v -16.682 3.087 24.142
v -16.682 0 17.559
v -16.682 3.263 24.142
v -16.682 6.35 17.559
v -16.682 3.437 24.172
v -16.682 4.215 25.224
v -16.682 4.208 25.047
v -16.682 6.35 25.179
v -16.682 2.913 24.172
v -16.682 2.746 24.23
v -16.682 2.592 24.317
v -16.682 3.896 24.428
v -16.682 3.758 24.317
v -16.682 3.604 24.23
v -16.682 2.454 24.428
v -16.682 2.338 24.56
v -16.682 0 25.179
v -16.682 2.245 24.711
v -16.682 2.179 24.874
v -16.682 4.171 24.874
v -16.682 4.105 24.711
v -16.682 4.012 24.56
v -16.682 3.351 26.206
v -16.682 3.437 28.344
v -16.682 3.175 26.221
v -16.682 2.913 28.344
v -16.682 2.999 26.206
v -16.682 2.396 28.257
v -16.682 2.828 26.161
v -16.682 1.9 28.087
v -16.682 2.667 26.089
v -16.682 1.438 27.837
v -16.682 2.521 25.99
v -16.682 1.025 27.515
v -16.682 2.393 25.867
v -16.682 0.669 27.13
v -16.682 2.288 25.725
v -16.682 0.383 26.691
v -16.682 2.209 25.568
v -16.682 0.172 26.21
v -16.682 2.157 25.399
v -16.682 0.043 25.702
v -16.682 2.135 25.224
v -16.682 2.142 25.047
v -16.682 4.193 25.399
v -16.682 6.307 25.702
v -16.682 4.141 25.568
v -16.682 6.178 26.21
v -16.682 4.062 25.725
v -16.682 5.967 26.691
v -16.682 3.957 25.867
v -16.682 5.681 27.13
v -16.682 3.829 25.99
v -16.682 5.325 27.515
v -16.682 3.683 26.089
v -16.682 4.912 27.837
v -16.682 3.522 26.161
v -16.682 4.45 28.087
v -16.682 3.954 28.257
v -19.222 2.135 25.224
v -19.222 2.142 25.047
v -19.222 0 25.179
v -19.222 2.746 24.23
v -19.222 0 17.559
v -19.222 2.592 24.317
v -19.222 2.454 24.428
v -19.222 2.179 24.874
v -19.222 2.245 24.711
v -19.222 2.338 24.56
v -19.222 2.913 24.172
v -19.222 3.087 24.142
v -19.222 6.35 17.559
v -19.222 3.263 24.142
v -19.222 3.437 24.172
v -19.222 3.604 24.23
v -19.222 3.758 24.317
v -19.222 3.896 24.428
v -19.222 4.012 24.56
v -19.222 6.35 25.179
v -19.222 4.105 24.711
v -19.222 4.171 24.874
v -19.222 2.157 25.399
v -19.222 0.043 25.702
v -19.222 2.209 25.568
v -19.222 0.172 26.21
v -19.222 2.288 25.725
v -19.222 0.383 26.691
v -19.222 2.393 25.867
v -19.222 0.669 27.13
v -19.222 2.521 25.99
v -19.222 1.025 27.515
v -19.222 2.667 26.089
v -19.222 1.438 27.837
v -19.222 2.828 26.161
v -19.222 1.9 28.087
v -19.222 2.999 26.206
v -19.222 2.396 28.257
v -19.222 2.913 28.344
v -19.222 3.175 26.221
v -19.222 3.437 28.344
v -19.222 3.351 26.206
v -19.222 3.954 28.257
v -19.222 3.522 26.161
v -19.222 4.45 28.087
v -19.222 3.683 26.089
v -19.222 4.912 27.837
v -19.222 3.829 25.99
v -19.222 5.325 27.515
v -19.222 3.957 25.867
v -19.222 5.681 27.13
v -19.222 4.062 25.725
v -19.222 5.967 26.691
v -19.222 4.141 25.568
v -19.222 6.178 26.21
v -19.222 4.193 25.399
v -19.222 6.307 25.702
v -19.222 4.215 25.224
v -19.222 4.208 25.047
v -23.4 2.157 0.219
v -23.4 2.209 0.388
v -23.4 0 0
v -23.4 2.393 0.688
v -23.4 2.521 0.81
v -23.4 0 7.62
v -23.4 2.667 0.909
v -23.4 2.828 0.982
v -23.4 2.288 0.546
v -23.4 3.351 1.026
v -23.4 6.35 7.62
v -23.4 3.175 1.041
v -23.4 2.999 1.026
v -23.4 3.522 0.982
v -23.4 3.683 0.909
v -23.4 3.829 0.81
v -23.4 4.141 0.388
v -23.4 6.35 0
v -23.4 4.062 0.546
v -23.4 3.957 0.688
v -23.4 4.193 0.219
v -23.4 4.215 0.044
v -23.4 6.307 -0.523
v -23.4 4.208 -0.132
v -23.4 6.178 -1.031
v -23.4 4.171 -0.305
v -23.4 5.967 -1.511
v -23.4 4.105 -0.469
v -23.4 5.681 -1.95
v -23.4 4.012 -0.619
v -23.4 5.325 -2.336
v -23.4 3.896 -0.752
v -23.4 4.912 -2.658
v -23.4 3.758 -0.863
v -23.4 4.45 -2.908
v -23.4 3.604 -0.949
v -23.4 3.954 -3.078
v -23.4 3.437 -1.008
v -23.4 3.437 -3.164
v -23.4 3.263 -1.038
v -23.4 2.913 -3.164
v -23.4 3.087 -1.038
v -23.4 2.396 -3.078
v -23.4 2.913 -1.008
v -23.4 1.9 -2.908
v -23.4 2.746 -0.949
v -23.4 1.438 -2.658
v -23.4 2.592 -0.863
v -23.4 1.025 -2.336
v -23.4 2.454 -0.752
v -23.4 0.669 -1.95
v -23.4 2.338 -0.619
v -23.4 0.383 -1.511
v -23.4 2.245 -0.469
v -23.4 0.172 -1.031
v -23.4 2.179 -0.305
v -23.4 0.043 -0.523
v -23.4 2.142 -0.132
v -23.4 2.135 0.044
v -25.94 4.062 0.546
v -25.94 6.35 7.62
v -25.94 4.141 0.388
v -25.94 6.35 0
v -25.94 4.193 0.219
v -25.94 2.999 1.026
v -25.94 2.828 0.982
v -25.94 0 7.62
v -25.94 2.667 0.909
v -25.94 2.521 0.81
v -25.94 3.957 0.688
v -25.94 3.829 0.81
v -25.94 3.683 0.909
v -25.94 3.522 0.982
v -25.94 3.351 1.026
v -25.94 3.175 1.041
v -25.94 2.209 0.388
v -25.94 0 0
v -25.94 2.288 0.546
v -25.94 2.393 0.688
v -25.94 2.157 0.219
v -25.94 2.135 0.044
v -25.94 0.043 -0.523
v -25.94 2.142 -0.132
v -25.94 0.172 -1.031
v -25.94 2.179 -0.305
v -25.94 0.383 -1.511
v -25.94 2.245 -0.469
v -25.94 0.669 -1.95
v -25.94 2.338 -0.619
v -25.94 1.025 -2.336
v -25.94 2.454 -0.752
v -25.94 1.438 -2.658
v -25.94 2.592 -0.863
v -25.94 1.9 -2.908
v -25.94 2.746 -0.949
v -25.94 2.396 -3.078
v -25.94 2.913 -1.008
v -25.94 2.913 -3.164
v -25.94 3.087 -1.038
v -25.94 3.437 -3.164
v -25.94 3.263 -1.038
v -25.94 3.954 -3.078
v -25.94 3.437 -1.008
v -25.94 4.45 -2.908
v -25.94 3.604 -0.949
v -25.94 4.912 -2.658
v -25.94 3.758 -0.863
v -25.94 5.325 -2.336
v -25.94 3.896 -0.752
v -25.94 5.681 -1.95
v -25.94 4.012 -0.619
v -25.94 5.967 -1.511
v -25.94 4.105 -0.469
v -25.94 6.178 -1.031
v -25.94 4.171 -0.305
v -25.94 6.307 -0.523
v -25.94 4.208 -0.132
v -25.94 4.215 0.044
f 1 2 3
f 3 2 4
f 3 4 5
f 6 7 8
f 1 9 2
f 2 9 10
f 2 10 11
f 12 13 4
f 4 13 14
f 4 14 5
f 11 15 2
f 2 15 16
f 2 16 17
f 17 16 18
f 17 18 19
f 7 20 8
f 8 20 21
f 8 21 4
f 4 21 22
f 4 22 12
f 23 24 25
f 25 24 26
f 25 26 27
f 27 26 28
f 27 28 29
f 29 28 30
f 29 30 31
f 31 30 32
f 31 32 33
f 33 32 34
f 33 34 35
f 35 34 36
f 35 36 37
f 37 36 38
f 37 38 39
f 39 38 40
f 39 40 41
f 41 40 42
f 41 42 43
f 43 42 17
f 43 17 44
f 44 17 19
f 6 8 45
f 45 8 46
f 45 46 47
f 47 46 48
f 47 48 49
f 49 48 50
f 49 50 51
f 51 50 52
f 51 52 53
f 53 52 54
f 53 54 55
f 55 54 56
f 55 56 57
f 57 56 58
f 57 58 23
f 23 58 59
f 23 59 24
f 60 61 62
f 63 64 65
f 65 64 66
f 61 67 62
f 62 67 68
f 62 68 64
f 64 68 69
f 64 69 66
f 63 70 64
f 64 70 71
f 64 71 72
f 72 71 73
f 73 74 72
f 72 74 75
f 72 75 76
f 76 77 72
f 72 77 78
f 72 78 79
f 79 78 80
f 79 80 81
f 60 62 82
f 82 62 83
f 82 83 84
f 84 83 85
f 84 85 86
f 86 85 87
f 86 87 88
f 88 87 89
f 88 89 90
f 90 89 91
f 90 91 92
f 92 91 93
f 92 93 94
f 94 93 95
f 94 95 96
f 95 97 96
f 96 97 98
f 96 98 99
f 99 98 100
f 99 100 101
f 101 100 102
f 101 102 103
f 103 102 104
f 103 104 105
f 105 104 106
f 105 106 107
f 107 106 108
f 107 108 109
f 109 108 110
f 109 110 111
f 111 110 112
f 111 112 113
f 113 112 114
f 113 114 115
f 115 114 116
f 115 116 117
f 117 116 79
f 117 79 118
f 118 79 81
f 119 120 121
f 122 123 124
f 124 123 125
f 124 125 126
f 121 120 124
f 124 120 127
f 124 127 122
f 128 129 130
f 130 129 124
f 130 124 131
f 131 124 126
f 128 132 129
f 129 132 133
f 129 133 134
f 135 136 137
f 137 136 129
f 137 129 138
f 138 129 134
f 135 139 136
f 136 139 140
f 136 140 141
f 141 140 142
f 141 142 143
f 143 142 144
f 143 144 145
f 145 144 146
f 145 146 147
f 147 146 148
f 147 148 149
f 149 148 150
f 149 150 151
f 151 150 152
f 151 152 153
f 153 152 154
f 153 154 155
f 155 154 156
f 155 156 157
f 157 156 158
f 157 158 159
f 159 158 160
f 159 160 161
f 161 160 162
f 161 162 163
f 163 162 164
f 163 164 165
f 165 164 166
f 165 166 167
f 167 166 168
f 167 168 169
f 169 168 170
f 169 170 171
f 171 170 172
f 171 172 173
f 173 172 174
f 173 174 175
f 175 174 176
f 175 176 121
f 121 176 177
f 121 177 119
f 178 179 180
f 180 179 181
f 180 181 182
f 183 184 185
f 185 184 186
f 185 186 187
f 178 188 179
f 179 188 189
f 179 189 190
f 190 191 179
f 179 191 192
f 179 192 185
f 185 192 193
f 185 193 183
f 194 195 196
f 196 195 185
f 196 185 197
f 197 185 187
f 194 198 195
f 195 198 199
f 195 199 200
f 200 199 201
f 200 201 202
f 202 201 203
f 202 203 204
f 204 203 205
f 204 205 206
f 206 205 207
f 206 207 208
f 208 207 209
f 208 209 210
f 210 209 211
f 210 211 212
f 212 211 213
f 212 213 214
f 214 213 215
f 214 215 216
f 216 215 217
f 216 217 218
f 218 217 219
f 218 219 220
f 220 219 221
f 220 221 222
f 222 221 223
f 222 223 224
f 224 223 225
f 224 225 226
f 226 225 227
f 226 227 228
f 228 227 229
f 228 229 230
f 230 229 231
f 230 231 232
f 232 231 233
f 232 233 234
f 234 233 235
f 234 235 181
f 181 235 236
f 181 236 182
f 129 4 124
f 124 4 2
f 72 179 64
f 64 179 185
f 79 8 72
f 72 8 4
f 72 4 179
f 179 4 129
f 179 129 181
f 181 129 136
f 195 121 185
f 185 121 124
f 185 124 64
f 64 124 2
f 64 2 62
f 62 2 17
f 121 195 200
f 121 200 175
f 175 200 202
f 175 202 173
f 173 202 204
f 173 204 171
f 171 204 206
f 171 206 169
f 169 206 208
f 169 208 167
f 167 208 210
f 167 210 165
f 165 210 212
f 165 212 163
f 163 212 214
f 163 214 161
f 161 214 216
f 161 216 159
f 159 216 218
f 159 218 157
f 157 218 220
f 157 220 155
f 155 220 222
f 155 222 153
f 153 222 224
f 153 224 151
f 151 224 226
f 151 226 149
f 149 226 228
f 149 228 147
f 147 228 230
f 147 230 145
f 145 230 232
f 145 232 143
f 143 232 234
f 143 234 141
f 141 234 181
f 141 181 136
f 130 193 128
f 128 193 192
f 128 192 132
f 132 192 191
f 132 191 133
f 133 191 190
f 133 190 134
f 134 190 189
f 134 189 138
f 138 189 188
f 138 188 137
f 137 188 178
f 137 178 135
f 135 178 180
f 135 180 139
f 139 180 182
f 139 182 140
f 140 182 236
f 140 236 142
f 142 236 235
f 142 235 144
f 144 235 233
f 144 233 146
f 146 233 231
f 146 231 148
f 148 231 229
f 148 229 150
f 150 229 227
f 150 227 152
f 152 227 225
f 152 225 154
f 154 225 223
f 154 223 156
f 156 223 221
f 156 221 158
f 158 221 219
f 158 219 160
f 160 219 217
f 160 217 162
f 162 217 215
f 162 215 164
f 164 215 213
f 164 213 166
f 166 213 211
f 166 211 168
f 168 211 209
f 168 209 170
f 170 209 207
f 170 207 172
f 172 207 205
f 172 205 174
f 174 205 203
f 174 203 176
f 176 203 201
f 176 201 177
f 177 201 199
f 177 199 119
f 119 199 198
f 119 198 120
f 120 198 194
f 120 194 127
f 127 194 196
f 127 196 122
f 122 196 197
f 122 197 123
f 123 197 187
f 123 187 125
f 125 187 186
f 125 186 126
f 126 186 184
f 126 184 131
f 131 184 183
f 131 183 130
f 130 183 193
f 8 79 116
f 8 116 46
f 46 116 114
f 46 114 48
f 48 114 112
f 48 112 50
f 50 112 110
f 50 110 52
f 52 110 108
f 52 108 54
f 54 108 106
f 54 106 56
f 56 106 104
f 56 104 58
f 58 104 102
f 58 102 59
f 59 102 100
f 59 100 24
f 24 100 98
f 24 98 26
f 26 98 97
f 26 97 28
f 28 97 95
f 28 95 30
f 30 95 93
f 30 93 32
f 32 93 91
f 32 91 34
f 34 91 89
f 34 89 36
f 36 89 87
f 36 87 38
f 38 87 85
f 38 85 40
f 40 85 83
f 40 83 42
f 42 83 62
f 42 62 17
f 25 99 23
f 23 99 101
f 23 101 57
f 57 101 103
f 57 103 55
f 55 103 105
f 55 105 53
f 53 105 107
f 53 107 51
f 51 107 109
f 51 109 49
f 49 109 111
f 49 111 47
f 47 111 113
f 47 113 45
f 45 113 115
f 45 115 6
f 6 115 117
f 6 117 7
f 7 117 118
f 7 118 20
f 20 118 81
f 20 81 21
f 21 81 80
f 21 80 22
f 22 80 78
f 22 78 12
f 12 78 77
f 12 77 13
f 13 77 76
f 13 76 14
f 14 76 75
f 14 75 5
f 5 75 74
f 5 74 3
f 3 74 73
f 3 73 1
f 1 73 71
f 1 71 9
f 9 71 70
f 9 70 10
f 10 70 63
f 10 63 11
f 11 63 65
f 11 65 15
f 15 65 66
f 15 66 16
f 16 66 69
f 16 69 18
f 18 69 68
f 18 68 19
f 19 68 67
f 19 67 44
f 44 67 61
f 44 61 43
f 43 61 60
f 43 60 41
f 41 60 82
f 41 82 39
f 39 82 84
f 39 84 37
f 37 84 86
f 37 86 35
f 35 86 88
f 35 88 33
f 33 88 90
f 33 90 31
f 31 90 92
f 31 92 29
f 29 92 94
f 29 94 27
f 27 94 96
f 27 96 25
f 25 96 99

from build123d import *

# Parameters (mm, degrees)
BOSS_EXTRUDE1_DEPTH = 6.35
SKETCH2_R           = 1.0414
CUT_EXTRUDE1_DEPTH  = 31.496215156
SKETCH3_R           = 1.0414
CUT_EXTRUDE2_DEPTH  = 30.82342263


with BuildPart() as part:
    # Sketch1 → Boss-Extrude1 (new body)
    with BuildSketch(Plane(origin=(0, 0, 0), x_dir=(1, 0, 0), z_dir=(0, 1, 0))):
        Polygon((-16.681663134, -25.179419289), (-16.681663134, -17.559419289), (-23.400364211, -7.62), (-23.400364211, 0), (-23.400364211, 3.175), (-25.940364211, 3.175), (-25.940364211, 0), (-25.940364211, -7.62), (-19.221663134, -17.559419289), (-19.221663134, -25.179419289), (-19.221663134, -28.354419289), (-16.681663134, -28.354419289), align=None)
    extrude(amount=BOSS_EXTRUDE1_DEPTH)

    # Sketch2 → Cut-Extrude1 (cut, through all)
    with BuildSketch(Plane.ZY.offset(25.940364211)):
        with BuildLine():
            ThreePointArc((-3.175, 3.175), (-2.24506403, 5.42006403), (0, 6.35))
            Line((0, 6.35), (-3.175, 6.35))
            Line((-3.175, 6.35), (-3.175, 3.175))
        make_face()
        with BuildLine():
            ThreePointArc((0, 0), (-2.24506403, 0.92993597), (-3.175, 3.175))
            Line((-3.175, 3.175), (-3.175, 0))
            Line((-3.175, 0), (0, 0))
        make_face()
        with Locations((0, 3.175)):
            Circle(SKETCH2_R)
    extrude(amount=-CUT_EXTRUDE1_DEPTH, mode=Mode.SUBTRACT)

    # Sketch3 → Cut-Extrude2 (cut, through all)
    with BuildSketch(Plane.ZY.offset(19.221663134)):
        with BuildLine():
            Line((28.354419289, 6.35), (25.179419289, 6.35))
            ThreePointArc((25.179419289, 6.35), (27.424483319, 5.42006403), (28.354419289, 3.175))
            Line((28.354419289, 3.175), (28.354419289, 6.35))
        make_face()
        with BuildLine():
            Line((28.354419289, 0), (28.354419289, 3.175))
            ThreePointArc((28.354419289, 3.175), (27.424483319, 0.92993597), (25.179419289, 0))
            Line((25.179419289, 0), (28.354419289, 0))
        make_face()
        with Locations((25.179419289, 3.175)):
            Circle(SKETCH3_R)
    extrude(amount=-CUT_EXTRUDE2_DEPTH, mode=Mode.SUBTRACT)


solid = part.part
